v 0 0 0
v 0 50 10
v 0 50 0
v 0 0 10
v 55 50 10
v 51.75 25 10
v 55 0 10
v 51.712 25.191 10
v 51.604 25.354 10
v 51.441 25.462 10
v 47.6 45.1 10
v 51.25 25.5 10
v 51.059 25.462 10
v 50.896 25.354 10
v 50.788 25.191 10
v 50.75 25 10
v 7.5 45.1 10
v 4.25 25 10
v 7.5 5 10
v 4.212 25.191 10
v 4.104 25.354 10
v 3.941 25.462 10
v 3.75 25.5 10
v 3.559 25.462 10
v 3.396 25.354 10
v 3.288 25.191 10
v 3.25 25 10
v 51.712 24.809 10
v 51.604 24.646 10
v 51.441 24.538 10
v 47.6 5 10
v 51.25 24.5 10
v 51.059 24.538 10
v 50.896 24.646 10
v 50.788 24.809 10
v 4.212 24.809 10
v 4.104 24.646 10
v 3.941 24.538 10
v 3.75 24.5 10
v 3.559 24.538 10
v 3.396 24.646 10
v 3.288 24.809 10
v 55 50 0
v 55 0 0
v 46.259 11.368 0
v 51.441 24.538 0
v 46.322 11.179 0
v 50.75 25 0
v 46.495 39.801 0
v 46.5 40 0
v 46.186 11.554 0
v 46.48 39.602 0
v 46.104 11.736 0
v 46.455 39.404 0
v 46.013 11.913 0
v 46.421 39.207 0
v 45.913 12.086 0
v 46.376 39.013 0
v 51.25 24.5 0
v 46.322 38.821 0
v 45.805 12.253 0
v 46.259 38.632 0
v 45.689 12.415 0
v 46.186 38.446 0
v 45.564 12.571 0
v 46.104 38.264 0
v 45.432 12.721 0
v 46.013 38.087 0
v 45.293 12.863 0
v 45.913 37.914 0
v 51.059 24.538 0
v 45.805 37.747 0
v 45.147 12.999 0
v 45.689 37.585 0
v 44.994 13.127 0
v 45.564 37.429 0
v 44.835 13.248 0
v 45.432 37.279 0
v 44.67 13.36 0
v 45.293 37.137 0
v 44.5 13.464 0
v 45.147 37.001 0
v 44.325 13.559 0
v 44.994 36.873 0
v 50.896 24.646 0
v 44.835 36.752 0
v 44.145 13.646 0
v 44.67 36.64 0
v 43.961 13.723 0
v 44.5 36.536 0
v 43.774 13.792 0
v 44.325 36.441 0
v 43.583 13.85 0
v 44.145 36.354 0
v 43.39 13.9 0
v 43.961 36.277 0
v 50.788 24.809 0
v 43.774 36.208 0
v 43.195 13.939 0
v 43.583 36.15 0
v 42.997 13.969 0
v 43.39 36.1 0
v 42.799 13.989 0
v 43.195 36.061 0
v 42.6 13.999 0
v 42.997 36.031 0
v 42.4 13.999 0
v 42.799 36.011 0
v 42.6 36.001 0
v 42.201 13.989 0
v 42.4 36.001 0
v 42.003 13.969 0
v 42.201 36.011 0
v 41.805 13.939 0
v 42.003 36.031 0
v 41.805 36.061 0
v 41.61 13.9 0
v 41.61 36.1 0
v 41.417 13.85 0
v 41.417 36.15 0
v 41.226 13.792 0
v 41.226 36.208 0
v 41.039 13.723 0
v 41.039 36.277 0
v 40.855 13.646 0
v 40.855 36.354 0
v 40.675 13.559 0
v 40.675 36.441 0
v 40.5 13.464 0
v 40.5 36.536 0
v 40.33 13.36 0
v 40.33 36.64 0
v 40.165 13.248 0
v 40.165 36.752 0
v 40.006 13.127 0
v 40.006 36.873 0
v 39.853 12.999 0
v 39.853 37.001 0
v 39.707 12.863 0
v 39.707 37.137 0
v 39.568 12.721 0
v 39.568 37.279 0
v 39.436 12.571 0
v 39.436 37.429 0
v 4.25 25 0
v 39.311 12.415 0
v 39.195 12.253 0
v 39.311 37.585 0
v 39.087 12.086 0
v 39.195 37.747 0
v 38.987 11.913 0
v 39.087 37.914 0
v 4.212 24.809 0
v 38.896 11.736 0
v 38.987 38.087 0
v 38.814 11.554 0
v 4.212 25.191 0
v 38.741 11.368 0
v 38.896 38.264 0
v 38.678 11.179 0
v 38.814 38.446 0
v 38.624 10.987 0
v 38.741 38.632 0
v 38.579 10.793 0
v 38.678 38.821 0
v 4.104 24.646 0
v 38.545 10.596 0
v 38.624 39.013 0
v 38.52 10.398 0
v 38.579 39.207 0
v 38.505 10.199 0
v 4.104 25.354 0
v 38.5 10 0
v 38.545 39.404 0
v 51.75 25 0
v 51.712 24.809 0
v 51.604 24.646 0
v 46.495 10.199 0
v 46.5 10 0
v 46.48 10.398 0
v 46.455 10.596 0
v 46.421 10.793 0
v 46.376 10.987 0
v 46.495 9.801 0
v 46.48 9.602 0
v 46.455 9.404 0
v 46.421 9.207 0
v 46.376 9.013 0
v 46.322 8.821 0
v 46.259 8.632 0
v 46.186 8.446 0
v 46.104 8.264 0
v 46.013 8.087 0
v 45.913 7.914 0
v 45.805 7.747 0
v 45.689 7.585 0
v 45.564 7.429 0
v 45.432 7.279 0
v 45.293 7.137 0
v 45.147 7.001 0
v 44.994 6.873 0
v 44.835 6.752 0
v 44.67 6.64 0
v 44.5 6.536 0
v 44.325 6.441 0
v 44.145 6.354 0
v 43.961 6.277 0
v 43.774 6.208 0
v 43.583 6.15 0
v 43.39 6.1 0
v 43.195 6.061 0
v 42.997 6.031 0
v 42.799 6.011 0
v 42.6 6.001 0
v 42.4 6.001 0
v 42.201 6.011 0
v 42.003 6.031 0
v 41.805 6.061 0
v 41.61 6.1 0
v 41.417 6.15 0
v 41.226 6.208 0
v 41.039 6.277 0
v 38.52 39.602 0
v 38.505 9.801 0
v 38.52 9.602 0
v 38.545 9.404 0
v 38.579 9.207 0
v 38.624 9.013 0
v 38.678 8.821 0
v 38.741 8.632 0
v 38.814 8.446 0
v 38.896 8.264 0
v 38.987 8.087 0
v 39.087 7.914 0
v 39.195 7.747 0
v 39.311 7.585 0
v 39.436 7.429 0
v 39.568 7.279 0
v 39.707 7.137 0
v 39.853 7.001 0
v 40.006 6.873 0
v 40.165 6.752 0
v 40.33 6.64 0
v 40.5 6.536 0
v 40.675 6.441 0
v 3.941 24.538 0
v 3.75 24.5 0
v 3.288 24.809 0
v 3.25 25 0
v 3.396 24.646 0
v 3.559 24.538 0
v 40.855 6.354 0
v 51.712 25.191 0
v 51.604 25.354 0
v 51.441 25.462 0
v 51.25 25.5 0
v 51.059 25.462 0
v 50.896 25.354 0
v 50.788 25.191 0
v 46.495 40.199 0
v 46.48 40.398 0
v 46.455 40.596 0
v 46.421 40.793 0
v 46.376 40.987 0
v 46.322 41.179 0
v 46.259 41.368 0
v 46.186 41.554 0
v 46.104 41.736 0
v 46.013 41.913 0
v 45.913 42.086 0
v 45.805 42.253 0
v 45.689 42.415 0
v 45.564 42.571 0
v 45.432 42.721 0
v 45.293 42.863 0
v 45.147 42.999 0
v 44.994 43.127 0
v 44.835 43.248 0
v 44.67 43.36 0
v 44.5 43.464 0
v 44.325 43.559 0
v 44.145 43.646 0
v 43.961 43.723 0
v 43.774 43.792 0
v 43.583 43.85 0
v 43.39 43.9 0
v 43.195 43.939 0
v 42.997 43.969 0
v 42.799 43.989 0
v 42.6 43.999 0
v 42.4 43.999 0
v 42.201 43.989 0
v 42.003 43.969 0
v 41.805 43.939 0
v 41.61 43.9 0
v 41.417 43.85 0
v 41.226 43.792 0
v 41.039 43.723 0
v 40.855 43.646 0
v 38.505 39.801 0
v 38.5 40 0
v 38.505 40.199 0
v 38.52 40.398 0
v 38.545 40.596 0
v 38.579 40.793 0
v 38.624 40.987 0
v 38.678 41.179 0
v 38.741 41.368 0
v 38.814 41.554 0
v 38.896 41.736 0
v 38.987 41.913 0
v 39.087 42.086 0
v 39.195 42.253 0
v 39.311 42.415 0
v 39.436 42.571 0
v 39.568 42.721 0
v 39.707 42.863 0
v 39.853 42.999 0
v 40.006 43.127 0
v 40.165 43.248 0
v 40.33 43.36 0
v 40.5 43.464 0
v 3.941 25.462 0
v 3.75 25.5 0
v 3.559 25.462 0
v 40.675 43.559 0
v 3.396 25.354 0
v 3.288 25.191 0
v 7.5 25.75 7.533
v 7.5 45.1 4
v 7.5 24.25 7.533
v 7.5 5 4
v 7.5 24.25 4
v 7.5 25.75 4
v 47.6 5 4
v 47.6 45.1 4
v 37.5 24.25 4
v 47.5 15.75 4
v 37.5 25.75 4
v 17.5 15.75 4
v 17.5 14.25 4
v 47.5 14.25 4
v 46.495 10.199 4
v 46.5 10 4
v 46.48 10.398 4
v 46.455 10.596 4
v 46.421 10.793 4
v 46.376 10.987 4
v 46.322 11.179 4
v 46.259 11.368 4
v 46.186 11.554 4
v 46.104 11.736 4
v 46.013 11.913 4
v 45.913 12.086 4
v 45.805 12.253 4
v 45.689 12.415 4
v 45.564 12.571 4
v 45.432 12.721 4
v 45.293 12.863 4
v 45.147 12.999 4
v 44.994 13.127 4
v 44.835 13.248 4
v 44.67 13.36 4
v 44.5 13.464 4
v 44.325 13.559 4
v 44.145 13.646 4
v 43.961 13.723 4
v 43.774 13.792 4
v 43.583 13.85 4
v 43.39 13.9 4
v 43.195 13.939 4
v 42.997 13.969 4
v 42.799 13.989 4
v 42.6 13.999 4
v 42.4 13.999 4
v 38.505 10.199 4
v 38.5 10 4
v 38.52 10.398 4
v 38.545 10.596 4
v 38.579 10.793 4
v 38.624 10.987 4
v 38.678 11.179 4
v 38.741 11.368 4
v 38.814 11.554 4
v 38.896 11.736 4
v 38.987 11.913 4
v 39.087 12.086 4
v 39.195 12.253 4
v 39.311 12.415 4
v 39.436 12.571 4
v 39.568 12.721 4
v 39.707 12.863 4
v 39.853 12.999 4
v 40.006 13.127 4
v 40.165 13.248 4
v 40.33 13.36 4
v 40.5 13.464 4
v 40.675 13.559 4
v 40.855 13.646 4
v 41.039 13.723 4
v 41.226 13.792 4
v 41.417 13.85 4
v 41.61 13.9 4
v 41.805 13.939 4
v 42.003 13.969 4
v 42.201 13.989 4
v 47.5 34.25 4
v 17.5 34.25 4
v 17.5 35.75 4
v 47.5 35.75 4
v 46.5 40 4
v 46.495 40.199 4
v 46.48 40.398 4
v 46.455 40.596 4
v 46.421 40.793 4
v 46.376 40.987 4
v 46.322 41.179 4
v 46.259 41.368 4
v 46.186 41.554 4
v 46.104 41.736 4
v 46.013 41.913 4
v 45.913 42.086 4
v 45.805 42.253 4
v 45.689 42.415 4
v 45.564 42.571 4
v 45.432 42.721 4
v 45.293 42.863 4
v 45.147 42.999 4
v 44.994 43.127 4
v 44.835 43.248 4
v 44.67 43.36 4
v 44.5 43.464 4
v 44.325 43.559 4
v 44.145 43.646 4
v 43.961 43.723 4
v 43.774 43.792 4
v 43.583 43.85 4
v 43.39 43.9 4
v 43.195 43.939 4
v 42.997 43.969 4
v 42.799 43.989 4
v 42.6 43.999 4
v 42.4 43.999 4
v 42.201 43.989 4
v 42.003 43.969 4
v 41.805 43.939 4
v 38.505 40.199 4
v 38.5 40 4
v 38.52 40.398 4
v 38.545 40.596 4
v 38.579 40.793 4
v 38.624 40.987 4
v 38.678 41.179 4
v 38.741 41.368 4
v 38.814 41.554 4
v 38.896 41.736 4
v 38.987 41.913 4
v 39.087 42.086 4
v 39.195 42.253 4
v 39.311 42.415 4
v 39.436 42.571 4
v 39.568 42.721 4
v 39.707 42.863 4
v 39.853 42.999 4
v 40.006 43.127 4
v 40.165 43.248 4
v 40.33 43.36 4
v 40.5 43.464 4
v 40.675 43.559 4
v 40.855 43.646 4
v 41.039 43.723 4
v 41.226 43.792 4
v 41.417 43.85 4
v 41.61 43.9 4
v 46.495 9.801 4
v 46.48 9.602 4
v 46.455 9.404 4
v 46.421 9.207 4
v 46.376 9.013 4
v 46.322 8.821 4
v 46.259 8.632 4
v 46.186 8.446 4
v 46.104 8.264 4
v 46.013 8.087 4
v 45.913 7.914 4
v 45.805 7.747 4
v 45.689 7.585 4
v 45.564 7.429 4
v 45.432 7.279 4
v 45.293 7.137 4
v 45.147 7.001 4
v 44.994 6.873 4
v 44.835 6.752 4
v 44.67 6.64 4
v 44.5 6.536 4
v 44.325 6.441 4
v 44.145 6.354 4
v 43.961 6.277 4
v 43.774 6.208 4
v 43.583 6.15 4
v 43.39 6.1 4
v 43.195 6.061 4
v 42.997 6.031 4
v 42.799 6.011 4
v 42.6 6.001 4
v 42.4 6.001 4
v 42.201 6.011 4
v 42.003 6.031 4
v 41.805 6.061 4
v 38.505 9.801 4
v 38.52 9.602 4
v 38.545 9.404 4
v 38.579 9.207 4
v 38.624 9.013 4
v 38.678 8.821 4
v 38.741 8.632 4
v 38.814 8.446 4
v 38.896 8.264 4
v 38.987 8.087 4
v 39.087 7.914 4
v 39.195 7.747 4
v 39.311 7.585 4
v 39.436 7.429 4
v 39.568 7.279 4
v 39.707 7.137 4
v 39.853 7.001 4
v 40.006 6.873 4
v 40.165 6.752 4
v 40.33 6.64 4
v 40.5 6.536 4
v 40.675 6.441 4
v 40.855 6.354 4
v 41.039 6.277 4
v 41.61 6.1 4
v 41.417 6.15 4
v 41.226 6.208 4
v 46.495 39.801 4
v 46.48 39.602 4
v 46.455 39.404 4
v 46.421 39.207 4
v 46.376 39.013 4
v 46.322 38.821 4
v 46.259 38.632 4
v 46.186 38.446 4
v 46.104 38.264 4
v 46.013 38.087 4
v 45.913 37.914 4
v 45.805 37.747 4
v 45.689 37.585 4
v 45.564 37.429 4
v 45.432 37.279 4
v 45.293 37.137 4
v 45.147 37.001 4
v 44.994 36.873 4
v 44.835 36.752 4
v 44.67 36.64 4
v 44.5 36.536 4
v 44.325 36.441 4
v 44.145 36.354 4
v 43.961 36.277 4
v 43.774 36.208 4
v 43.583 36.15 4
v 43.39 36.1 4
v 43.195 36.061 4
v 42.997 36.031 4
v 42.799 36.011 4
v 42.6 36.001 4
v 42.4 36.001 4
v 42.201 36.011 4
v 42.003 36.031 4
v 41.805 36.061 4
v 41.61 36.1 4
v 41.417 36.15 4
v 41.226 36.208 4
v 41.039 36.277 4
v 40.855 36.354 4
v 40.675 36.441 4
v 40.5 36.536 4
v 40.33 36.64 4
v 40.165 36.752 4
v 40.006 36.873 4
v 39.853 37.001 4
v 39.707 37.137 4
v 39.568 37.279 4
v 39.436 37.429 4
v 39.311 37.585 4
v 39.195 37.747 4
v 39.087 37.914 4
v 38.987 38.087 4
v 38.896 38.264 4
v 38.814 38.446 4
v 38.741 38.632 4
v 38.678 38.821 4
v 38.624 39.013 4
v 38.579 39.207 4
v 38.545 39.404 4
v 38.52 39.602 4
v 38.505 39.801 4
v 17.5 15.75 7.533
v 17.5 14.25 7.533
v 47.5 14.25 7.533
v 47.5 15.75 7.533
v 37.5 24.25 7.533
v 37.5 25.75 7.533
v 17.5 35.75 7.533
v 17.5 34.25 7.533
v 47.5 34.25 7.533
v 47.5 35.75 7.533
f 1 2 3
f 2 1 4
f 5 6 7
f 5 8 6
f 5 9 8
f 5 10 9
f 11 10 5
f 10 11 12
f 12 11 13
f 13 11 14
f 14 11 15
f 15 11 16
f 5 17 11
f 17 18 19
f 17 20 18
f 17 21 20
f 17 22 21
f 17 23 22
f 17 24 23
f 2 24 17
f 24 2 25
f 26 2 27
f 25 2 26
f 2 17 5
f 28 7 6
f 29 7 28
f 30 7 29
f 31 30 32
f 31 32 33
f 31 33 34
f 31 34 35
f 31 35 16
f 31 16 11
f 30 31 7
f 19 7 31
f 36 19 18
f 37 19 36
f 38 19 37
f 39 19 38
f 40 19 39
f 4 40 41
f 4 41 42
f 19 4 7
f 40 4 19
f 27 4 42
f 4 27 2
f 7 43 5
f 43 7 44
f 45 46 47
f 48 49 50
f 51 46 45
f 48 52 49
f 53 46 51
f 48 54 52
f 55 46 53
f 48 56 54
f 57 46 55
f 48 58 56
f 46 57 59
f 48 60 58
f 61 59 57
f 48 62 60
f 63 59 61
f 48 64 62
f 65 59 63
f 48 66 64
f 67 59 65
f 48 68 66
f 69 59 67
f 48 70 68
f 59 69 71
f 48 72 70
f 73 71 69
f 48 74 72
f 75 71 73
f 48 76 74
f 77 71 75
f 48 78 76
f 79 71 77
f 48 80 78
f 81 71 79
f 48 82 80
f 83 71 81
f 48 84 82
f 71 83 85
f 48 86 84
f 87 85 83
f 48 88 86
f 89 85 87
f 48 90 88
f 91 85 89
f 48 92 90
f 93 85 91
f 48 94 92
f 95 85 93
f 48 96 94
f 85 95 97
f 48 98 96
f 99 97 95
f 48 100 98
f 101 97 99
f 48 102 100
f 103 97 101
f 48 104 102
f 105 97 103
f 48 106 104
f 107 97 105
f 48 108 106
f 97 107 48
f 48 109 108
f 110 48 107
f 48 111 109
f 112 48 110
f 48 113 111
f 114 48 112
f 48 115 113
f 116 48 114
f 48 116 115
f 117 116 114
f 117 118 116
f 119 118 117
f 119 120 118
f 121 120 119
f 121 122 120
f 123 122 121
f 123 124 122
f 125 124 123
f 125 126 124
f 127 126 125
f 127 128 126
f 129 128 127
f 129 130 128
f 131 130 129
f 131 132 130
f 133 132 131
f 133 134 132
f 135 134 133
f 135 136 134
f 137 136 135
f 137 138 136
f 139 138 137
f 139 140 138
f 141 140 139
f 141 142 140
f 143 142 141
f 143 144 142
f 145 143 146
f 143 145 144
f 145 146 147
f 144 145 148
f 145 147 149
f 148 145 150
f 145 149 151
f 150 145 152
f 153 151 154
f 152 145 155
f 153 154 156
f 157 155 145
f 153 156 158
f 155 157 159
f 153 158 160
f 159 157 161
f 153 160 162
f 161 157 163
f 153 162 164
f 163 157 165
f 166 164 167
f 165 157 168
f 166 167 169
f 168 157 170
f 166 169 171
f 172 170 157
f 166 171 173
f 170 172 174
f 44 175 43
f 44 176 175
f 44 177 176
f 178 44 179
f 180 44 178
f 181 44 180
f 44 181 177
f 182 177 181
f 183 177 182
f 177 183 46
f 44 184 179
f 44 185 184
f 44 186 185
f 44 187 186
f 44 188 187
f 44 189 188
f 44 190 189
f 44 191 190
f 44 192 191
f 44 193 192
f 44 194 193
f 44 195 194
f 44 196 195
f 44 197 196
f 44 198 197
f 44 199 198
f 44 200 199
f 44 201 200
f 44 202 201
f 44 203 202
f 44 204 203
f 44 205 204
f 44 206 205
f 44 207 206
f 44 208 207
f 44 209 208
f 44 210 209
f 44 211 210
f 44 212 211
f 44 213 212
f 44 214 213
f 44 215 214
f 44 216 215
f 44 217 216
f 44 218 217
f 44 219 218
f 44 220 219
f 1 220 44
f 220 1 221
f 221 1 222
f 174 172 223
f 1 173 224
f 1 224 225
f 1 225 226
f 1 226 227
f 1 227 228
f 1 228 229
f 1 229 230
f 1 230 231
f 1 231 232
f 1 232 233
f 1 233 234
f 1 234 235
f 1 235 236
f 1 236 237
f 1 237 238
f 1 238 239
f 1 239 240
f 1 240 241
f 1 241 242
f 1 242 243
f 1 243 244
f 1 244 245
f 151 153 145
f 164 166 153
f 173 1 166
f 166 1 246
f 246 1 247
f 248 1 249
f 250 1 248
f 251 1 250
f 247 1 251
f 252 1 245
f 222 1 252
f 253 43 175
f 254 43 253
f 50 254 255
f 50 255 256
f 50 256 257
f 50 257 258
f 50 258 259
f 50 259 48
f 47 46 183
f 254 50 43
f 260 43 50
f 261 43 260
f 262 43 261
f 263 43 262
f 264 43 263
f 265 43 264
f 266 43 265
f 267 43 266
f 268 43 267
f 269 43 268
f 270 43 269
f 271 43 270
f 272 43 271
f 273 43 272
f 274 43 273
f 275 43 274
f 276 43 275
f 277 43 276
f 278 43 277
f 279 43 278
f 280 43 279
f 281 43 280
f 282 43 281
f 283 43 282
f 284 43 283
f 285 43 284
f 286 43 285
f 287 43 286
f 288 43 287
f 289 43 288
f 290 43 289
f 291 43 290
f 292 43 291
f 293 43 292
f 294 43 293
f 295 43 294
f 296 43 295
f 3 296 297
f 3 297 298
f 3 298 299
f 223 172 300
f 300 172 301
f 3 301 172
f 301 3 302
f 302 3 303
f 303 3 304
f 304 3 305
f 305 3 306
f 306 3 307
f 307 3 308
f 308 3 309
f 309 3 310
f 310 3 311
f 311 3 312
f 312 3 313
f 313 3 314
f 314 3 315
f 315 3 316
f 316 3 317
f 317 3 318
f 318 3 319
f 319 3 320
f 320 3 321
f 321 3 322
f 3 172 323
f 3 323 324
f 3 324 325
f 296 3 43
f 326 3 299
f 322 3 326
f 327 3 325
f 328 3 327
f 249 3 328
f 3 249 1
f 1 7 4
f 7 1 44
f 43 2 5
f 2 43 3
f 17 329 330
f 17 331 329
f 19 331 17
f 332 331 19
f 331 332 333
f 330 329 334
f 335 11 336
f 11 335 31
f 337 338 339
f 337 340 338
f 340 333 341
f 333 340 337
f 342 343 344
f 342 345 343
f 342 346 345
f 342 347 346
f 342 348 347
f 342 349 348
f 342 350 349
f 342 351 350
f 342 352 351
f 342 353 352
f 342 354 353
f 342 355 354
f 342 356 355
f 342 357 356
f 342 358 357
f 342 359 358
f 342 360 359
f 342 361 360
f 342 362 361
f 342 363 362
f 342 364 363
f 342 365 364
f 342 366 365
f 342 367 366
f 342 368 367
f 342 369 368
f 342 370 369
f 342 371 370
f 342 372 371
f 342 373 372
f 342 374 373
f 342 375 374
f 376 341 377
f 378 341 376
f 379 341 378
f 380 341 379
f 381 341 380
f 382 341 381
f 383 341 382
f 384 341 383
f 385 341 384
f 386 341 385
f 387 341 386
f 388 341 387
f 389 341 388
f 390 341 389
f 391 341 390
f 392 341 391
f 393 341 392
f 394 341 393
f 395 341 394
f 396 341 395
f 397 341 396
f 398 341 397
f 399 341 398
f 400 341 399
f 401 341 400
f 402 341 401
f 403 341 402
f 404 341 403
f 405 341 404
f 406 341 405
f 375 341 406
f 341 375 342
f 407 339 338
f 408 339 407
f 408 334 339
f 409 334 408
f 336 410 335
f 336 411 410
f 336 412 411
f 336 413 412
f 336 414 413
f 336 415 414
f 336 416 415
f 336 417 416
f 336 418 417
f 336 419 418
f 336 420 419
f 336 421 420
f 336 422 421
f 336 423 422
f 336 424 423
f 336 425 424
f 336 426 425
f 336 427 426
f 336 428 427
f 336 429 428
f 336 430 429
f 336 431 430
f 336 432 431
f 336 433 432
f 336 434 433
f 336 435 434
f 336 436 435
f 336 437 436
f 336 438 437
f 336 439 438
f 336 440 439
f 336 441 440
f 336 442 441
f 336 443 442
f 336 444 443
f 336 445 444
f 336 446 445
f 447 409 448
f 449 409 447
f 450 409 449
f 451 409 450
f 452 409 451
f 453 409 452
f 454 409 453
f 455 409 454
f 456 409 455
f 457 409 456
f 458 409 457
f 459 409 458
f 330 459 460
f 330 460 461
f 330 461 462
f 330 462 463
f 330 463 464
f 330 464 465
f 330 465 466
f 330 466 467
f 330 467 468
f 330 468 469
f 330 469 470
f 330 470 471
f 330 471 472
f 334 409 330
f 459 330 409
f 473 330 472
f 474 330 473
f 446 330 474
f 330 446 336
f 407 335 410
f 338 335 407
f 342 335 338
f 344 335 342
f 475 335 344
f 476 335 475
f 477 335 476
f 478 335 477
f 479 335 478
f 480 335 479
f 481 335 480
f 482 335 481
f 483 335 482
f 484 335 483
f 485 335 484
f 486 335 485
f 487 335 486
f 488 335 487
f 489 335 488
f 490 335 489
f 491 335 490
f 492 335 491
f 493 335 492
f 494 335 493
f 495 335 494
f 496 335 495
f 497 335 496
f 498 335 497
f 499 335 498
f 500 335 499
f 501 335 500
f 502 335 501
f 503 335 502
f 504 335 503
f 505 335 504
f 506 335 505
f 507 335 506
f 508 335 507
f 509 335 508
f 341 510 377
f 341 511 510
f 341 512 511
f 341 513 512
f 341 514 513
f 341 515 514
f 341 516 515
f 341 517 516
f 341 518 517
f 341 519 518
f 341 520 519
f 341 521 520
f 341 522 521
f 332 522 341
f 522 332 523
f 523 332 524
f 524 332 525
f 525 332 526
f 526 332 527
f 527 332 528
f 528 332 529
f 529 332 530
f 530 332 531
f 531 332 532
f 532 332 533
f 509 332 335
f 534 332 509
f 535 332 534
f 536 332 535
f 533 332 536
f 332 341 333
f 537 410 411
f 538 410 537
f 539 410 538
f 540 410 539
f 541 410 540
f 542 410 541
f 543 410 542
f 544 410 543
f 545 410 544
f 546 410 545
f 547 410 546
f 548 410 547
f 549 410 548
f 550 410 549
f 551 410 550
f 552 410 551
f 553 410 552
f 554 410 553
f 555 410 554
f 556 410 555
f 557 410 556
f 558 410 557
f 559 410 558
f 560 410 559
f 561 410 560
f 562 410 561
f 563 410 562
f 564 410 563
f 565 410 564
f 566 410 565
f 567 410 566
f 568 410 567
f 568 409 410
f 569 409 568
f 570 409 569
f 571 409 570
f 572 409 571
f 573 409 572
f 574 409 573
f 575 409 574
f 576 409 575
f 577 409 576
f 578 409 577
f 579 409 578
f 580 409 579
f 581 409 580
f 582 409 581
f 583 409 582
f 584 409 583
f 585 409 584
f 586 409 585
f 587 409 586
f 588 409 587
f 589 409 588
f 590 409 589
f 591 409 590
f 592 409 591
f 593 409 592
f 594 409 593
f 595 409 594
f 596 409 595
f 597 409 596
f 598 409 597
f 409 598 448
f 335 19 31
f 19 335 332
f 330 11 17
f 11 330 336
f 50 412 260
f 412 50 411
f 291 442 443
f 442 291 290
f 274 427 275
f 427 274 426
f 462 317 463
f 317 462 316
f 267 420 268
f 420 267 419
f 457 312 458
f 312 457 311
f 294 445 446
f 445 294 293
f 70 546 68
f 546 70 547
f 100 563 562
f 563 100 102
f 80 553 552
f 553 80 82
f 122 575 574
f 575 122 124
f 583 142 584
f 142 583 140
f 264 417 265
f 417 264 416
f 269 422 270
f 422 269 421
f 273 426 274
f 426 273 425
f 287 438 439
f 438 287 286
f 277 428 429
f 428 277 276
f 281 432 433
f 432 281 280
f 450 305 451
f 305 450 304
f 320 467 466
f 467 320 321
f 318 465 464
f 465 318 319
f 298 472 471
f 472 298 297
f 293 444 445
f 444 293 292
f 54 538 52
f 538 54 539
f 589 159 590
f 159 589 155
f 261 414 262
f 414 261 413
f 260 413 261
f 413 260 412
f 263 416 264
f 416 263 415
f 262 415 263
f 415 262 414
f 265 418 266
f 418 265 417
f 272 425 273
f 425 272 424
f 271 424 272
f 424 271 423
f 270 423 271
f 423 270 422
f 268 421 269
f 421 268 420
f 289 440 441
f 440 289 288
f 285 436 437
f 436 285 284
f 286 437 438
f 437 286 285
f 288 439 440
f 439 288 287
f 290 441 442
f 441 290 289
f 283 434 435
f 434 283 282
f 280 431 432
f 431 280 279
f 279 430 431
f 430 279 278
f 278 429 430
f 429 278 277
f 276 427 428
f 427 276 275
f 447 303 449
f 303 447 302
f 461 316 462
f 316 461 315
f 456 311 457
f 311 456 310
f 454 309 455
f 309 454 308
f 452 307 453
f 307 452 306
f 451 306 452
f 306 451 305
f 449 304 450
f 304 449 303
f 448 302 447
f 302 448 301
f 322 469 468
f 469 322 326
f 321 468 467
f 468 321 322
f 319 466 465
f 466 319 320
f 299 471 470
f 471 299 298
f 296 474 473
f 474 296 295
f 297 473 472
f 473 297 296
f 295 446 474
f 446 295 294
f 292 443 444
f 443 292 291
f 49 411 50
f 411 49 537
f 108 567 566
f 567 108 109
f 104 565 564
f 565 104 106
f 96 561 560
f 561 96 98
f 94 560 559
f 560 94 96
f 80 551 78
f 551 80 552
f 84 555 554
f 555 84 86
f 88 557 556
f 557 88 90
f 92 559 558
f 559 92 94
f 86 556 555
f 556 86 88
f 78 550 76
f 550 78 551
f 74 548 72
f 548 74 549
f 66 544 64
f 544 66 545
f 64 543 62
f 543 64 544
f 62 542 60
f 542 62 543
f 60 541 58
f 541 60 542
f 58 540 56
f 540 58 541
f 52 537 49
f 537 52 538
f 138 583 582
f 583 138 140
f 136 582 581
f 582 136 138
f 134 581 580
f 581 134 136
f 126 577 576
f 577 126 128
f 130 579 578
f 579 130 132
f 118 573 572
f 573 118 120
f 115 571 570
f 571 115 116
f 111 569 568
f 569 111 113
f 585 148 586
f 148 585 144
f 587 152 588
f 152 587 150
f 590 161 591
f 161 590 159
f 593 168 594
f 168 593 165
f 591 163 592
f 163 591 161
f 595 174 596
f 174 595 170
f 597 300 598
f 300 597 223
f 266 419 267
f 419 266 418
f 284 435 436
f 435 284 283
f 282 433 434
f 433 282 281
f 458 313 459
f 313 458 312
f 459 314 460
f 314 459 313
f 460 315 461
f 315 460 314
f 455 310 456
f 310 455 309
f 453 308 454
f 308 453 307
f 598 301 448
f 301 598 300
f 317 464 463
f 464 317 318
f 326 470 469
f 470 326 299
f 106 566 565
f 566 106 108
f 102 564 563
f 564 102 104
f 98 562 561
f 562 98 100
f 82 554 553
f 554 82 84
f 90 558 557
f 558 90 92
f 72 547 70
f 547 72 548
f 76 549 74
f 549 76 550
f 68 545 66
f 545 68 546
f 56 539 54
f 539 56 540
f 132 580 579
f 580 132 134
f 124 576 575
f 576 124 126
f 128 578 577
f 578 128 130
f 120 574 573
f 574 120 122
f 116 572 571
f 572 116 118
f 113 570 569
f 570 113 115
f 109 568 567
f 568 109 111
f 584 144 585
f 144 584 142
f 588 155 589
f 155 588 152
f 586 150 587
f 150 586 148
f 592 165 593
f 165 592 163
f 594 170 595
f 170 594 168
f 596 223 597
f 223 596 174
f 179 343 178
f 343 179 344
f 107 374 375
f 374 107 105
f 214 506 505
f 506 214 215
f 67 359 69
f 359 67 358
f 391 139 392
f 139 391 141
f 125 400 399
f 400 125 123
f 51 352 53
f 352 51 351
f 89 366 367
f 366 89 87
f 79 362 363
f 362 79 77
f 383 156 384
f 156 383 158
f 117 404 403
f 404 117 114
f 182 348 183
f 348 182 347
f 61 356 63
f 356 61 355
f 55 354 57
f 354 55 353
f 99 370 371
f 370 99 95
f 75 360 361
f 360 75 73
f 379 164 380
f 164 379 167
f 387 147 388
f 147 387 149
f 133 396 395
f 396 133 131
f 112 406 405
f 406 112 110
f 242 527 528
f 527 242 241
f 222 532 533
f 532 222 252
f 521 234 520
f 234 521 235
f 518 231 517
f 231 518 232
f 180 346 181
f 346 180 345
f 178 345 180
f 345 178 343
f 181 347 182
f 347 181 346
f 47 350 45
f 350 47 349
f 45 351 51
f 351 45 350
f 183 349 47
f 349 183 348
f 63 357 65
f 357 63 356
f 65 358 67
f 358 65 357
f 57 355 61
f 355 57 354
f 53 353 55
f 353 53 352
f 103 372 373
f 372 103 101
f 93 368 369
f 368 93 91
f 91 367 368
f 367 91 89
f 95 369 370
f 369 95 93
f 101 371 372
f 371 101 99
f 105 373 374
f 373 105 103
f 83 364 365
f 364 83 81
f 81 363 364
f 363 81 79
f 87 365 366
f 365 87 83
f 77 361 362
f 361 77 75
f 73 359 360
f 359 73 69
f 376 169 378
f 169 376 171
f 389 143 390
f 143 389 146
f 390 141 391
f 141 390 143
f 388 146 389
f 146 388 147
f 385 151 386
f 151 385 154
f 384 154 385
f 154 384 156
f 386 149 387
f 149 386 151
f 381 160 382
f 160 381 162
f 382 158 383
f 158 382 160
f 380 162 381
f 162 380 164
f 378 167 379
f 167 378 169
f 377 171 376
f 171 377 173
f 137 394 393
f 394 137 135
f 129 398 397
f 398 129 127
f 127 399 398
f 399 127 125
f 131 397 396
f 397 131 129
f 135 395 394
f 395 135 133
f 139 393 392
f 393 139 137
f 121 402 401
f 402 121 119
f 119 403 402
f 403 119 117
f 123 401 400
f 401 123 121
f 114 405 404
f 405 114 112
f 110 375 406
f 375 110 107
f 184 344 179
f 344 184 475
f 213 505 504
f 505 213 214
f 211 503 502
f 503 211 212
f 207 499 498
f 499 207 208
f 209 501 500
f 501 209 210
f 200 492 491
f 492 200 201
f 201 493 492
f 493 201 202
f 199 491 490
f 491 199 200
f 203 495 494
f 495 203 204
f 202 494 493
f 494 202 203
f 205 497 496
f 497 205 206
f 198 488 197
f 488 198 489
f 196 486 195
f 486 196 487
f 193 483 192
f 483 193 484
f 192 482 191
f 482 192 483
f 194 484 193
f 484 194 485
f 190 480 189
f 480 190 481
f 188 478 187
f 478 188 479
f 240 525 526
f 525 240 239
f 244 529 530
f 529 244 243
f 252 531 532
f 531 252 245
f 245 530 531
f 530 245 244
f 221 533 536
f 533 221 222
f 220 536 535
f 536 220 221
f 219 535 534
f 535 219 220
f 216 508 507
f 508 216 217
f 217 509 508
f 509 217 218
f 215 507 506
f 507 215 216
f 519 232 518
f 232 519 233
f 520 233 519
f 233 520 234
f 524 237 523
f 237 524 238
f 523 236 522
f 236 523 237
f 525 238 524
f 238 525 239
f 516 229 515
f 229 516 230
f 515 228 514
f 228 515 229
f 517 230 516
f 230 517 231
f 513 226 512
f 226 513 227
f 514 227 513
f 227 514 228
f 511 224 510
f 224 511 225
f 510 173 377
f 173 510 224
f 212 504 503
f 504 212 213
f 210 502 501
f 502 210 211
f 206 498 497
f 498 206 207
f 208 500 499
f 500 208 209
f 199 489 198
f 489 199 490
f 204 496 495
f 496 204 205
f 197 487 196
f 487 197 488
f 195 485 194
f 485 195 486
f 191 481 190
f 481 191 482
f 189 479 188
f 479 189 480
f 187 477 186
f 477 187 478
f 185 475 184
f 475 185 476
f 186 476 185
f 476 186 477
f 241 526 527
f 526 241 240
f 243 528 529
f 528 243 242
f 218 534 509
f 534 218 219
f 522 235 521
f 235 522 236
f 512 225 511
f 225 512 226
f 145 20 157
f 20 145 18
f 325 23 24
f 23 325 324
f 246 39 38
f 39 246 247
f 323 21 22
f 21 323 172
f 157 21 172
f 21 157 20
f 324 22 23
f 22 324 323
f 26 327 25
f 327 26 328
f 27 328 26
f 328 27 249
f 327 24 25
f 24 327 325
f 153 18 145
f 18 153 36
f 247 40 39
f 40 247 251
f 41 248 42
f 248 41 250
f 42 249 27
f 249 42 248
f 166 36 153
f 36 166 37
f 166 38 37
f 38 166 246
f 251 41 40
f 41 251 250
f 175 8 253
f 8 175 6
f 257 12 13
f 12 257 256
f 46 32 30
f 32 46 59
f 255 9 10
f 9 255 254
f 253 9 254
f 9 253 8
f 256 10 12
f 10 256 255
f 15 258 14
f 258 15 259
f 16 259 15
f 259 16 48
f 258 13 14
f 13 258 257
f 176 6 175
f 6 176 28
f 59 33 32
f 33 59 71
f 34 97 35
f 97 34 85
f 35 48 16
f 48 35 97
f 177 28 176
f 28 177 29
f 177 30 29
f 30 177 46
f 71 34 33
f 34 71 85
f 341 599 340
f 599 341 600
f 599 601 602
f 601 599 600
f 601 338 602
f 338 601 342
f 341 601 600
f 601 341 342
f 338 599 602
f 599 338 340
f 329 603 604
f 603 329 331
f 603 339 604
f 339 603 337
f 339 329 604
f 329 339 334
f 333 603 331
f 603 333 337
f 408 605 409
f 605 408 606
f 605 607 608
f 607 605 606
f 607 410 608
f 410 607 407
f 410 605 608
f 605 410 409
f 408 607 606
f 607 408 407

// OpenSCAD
$fa = 1;
$fs = 0.2;

peltier_x = 40;
peltier_y = 40;
peltier_z = 3.7;

block_x = 55;
block_y = 50;
block_z = 10;

wall_thickness = 1.5;
cold_cabin_depth = 6;

inlet_radius = 4;
outlet_radius = 4;

tie_down_radius = 0.5;

clearance = 0.1;

cabin_x_padding = ((block_x-peltier_x)/2);
cabin_y_padding = ((block_y-peltier_y)/2);

difference() {
    cube(size = [block_x, block_y, block_z]);
    translate([cabin_x_padding, cabin_y_padding, block_z-cold_cabin_depth])
        cube([peltier_x + clearance, peltier_y + clearance, cold_cabin_depth+block_z]);
    
    translate(v = [cabin_x_padding + (7/8) * peltier_x,
        cabin_y_padding + (7/8) * peltier_y,
        -clearance
    ])
    cylinder(h = block_z, r = inlet_radius);

    translate(v = [cabin_x_padding + (7/8) * peltier_x,
        cabin_y_padding + (1/8) * peltier_y,
        -clearance
    ])
    cylinder(h = block_z, r = outlet_radius);

    translate(v = [cabin_x_padding/2, block_y/2, -clearance])
    cylinder(h = block_z + 2* clearance, r = tie_down_radius);

    translate(v = [3*cabin_x_padding/2 + peltier_x, block_y/2, -clearance])
    cylinder(h = block_z + 2* clearance, r = tie_down_radius); 
}

translate(v = [cabin_x_padding + 0.25*peltier_x,
    cabin_y_padding + 0.25*peltier_y - wall_thickness/2,
    block_z-cold_cabin_depth]) 
cube([0.75*peltier_x, wall_thickness, cold_cabin_depth-2*peltier_z/3]);

translate(v = [cabin_x_padding,
    cabin_y_padding + 0.5*peltier_y - wall_thickness/2,
    block_z-cold_cabin_depth]) 
cube([0.75*peltier_x, wall_thickness, cold_cabin_depth-2*peltier_z/3]);

translate(v = [cabin_x_padding + 0.25*peltier_x,
    cabin_y_padding + 0.75*peltier_y - wall_thickness/2,
    block_z-cold_cabin_depth]) 
cube([0.75*peltier_x, wall_thickness, cold_cabin_depth-2*peltier_z/3]);
